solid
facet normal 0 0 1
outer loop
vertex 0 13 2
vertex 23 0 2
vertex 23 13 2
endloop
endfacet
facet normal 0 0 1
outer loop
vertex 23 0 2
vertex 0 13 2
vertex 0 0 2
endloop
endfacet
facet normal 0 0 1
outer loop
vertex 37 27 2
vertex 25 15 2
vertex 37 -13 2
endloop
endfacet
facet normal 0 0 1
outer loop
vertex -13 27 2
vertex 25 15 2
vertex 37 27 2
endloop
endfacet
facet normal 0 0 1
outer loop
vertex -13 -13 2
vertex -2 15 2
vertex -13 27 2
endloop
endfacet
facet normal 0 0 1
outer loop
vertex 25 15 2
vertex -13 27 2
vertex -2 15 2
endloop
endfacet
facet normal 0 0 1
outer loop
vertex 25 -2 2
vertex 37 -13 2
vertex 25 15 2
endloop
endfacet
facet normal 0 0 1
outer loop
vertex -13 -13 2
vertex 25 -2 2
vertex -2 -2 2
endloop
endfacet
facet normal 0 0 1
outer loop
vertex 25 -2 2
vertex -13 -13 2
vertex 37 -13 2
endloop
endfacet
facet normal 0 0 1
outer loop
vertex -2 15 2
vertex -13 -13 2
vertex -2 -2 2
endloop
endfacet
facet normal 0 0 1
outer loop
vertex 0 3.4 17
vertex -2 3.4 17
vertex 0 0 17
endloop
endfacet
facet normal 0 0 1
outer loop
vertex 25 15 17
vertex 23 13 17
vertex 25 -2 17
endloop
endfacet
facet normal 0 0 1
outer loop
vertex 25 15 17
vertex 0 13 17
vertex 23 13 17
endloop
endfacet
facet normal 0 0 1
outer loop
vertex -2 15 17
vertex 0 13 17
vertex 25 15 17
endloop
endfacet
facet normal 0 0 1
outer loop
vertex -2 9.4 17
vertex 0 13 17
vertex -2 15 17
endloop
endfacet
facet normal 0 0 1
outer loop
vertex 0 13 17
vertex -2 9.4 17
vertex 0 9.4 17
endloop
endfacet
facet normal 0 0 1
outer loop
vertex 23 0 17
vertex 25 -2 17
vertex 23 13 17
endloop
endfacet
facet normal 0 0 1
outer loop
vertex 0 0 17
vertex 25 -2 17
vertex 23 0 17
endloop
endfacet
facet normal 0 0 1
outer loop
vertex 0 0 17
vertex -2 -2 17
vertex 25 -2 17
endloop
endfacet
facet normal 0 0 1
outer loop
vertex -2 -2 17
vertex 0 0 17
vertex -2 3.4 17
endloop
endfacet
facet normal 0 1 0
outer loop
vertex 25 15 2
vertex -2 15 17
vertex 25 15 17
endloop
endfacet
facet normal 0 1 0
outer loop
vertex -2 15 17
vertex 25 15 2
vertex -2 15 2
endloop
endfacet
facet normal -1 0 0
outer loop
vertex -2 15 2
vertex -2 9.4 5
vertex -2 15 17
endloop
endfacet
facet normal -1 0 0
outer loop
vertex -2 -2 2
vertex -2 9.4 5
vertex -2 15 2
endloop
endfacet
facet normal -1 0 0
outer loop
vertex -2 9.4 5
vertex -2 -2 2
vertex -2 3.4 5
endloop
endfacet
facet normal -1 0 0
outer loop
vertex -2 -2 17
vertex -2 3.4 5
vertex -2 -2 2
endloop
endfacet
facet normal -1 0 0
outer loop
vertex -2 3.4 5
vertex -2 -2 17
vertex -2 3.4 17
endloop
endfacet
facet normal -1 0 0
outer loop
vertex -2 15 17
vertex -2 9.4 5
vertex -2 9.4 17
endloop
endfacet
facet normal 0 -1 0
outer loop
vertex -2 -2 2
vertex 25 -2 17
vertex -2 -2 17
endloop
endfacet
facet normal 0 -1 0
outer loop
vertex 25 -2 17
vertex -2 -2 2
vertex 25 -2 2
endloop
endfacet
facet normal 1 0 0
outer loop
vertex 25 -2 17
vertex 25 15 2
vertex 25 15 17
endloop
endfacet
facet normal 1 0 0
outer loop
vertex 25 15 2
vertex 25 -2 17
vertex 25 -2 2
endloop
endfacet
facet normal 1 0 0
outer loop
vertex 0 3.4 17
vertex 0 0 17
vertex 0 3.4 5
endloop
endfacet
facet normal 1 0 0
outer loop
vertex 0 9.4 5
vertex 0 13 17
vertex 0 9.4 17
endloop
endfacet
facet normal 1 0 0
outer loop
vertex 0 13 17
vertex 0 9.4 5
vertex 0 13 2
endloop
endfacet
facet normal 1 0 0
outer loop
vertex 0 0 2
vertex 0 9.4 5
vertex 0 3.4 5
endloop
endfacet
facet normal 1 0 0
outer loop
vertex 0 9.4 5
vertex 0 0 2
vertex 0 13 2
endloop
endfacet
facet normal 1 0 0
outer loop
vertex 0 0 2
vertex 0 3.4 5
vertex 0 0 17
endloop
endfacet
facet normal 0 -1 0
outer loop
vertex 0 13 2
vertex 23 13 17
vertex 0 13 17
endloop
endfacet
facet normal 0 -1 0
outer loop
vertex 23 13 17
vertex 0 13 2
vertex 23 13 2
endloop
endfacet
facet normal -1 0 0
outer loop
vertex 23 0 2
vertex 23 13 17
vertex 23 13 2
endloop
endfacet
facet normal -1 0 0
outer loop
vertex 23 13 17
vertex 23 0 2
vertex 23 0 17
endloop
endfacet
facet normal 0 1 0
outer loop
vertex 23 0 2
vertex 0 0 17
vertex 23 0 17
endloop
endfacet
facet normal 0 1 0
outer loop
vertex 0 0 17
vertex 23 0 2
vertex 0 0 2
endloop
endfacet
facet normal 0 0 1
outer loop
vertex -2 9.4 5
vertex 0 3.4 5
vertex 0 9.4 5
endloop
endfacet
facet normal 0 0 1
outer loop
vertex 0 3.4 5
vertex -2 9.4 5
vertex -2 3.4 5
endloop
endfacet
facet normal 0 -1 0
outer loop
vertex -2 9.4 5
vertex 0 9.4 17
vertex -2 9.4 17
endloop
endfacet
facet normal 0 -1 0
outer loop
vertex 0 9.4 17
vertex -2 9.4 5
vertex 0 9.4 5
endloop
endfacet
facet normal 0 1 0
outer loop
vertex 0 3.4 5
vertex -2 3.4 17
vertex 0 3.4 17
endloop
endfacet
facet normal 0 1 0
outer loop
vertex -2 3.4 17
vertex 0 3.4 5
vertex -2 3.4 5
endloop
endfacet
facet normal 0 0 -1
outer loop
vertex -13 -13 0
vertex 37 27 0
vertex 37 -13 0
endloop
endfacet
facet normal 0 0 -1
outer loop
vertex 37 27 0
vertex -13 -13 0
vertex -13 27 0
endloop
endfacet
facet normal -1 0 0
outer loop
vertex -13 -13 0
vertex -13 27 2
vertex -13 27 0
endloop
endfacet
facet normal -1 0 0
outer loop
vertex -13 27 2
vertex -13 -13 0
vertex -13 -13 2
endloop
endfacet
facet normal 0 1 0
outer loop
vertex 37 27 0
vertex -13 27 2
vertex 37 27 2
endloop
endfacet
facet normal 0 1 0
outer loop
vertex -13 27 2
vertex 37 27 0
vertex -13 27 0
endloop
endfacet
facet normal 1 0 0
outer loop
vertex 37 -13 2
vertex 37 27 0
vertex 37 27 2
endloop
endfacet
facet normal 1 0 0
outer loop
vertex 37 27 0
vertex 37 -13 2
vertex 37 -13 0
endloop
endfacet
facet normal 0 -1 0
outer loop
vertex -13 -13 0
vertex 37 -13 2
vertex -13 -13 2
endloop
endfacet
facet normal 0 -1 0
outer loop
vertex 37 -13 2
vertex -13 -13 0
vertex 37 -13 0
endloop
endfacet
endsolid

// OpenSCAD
translate([-13,-13])
linear_extrude(2) square([50,40]);

translate([0,0,2])
difference(){
    
 linear_extrude(15) difference(){
translate([-2,-2,0])  square([27,17]);
square([23,13]);
}   

translate([-2,3.4,3]) linear_extrude(12) 
square([8,6]);


}
